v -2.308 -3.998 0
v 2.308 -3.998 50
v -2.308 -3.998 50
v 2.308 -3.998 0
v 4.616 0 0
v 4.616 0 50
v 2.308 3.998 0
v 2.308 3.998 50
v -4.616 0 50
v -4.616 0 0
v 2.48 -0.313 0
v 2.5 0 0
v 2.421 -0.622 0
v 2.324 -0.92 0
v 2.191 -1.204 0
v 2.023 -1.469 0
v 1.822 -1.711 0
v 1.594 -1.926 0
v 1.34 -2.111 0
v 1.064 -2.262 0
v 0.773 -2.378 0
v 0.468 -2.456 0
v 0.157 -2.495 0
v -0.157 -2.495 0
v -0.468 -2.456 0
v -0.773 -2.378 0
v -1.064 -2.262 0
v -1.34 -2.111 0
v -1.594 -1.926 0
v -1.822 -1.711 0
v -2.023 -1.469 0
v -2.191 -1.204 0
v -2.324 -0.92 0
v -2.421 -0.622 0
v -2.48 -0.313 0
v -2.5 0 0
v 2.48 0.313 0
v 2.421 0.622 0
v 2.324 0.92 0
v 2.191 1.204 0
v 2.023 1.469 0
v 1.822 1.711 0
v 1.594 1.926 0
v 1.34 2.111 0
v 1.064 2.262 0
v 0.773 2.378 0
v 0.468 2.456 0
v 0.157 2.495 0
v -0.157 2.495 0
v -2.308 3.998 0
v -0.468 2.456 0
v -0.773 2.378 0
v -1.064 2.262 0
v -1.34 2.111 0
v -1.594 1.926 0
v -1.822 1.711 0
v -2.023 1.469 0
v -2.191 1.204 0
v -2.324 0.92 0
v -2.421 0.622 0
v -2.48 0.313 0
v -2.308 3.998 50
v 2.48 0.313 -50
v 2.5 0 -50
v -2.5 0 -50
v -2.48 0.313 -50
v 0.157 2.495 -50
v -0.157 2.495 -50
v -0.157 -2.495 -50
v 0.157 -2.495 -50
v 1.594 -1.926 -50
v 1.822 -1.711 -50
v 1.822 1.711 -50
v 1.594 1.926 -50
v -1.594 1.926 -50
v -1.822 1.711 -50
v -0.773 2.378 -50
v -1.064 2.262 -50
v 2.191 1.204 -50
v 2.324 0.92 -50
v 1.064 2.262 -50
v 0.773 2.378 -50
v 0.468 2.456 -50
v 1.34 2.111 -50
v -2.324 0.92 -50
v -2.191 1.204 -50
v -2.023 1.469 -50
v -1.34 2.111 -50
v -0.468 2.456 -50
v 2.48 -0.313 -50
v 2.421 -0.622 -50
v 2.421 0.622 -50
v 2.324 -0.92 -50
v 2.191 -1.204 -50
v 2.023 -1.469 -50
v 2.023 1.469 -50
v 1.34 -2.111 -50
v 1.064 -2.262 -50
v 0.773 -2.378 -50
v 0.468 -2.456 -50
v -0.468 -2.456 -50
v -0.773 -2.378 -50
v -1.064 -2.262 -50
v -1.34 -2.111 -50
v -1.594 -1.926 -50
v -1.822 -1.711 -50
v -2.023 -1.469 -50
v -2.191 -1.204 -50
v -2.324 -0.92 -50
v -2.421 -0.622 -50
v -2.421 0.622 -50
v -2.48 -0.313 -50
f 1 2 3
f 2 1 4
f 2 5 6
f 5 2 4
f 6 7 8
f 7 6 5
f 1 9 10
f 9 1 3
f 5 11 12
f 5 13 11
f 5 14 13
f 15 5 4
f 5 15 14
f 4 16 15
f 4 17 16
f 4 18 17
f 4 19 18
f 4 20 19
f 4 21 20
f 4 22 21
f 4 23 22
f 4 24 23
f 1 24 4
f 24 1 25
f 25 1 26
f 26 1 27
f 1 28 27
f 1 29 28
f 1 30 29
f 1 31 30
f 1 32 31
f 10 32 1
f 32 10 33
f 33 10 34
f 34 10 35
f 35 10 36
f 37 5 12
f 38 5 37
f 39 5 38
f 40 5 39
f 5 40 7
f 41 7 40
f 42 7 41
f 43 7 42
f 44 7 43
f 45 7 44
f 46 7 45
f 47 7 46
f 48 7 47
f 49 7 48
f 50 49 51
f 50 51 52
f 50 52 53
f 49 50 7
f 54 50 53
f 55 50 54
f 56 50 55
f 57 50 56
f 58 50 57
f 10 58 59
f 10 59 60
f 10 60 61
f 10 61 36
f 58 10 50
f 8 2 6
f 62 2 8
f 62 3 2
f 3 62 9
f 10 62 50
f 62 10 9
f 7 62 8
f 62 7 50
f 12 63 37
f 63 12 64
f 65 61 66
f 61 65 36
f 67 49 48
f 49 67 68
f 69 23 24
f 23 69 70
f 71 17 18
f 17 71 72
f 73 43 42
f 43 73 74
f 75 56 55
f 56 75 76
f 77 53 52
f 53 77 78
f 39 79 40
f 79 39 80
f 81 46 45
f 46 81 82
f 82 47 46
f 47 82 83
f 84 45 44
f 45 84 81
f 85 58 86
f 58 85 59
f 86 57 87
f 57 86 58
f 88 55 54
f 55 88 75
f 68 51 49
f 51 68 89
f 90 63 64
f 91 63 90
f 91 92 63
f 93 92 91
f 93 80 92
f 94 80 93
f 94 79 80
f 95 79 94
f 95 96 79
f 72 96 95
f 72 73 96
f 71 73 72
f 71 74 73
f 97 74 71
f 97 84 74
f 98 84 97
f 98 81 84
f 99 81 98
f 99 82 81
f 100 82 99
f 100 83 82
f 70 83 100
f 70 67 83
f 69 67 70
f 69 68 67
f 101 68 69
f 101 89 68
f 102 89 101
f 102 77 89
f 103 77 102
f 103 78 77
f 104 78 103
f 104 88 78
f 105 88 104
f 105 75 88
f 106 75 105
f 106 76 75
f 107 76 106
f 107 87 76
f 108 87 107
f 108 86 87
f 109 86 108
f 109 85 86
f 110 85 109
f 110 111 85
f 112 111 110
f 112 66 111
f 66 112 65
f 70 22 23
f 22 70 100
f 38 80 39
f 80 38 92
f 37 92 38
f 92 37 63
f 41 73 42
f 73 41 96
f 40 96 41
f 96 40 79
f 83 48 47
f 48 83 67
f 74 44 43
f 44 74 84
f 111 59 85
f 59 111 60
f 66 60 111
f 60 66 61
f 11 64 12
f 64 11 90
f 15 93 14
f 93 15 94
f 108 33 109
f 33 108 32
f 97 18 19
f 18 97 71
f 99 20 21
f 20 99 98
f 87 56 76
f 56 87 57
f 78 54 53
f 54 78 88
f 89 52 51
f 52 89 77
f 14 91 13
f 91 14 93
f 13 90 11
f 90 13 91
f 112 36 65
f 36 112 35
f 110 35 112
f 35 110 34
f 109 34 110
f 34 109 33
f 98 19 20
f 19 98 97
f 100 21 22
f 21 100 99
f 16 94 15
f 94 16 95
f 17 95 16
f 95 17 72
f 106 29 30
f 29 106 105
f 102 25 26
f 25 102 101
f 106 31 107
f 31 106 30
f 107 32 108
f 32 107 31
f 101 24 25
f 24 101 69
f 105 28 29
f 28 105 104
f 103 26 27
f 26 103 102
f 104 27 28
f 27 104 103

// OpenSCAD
$fn = 50;


difference() {
	union() {
		linear_extrude(height = 50) {
			polygon(points = [[4.6160000000, 0.0000000000], [2.3080000000, 3.9975732639], [-2.3080000000, 3.9975732639], [-4.6160000000, 0.0000000000], [-2.3080000000, -3.9975732639], [2.3080000000, -3.9975732639]]);
		}
		translate(v = [0, 0, -50]) {
			cylinder(h = 50, r = 2.5000000000);
		}
	}
	union();
}
